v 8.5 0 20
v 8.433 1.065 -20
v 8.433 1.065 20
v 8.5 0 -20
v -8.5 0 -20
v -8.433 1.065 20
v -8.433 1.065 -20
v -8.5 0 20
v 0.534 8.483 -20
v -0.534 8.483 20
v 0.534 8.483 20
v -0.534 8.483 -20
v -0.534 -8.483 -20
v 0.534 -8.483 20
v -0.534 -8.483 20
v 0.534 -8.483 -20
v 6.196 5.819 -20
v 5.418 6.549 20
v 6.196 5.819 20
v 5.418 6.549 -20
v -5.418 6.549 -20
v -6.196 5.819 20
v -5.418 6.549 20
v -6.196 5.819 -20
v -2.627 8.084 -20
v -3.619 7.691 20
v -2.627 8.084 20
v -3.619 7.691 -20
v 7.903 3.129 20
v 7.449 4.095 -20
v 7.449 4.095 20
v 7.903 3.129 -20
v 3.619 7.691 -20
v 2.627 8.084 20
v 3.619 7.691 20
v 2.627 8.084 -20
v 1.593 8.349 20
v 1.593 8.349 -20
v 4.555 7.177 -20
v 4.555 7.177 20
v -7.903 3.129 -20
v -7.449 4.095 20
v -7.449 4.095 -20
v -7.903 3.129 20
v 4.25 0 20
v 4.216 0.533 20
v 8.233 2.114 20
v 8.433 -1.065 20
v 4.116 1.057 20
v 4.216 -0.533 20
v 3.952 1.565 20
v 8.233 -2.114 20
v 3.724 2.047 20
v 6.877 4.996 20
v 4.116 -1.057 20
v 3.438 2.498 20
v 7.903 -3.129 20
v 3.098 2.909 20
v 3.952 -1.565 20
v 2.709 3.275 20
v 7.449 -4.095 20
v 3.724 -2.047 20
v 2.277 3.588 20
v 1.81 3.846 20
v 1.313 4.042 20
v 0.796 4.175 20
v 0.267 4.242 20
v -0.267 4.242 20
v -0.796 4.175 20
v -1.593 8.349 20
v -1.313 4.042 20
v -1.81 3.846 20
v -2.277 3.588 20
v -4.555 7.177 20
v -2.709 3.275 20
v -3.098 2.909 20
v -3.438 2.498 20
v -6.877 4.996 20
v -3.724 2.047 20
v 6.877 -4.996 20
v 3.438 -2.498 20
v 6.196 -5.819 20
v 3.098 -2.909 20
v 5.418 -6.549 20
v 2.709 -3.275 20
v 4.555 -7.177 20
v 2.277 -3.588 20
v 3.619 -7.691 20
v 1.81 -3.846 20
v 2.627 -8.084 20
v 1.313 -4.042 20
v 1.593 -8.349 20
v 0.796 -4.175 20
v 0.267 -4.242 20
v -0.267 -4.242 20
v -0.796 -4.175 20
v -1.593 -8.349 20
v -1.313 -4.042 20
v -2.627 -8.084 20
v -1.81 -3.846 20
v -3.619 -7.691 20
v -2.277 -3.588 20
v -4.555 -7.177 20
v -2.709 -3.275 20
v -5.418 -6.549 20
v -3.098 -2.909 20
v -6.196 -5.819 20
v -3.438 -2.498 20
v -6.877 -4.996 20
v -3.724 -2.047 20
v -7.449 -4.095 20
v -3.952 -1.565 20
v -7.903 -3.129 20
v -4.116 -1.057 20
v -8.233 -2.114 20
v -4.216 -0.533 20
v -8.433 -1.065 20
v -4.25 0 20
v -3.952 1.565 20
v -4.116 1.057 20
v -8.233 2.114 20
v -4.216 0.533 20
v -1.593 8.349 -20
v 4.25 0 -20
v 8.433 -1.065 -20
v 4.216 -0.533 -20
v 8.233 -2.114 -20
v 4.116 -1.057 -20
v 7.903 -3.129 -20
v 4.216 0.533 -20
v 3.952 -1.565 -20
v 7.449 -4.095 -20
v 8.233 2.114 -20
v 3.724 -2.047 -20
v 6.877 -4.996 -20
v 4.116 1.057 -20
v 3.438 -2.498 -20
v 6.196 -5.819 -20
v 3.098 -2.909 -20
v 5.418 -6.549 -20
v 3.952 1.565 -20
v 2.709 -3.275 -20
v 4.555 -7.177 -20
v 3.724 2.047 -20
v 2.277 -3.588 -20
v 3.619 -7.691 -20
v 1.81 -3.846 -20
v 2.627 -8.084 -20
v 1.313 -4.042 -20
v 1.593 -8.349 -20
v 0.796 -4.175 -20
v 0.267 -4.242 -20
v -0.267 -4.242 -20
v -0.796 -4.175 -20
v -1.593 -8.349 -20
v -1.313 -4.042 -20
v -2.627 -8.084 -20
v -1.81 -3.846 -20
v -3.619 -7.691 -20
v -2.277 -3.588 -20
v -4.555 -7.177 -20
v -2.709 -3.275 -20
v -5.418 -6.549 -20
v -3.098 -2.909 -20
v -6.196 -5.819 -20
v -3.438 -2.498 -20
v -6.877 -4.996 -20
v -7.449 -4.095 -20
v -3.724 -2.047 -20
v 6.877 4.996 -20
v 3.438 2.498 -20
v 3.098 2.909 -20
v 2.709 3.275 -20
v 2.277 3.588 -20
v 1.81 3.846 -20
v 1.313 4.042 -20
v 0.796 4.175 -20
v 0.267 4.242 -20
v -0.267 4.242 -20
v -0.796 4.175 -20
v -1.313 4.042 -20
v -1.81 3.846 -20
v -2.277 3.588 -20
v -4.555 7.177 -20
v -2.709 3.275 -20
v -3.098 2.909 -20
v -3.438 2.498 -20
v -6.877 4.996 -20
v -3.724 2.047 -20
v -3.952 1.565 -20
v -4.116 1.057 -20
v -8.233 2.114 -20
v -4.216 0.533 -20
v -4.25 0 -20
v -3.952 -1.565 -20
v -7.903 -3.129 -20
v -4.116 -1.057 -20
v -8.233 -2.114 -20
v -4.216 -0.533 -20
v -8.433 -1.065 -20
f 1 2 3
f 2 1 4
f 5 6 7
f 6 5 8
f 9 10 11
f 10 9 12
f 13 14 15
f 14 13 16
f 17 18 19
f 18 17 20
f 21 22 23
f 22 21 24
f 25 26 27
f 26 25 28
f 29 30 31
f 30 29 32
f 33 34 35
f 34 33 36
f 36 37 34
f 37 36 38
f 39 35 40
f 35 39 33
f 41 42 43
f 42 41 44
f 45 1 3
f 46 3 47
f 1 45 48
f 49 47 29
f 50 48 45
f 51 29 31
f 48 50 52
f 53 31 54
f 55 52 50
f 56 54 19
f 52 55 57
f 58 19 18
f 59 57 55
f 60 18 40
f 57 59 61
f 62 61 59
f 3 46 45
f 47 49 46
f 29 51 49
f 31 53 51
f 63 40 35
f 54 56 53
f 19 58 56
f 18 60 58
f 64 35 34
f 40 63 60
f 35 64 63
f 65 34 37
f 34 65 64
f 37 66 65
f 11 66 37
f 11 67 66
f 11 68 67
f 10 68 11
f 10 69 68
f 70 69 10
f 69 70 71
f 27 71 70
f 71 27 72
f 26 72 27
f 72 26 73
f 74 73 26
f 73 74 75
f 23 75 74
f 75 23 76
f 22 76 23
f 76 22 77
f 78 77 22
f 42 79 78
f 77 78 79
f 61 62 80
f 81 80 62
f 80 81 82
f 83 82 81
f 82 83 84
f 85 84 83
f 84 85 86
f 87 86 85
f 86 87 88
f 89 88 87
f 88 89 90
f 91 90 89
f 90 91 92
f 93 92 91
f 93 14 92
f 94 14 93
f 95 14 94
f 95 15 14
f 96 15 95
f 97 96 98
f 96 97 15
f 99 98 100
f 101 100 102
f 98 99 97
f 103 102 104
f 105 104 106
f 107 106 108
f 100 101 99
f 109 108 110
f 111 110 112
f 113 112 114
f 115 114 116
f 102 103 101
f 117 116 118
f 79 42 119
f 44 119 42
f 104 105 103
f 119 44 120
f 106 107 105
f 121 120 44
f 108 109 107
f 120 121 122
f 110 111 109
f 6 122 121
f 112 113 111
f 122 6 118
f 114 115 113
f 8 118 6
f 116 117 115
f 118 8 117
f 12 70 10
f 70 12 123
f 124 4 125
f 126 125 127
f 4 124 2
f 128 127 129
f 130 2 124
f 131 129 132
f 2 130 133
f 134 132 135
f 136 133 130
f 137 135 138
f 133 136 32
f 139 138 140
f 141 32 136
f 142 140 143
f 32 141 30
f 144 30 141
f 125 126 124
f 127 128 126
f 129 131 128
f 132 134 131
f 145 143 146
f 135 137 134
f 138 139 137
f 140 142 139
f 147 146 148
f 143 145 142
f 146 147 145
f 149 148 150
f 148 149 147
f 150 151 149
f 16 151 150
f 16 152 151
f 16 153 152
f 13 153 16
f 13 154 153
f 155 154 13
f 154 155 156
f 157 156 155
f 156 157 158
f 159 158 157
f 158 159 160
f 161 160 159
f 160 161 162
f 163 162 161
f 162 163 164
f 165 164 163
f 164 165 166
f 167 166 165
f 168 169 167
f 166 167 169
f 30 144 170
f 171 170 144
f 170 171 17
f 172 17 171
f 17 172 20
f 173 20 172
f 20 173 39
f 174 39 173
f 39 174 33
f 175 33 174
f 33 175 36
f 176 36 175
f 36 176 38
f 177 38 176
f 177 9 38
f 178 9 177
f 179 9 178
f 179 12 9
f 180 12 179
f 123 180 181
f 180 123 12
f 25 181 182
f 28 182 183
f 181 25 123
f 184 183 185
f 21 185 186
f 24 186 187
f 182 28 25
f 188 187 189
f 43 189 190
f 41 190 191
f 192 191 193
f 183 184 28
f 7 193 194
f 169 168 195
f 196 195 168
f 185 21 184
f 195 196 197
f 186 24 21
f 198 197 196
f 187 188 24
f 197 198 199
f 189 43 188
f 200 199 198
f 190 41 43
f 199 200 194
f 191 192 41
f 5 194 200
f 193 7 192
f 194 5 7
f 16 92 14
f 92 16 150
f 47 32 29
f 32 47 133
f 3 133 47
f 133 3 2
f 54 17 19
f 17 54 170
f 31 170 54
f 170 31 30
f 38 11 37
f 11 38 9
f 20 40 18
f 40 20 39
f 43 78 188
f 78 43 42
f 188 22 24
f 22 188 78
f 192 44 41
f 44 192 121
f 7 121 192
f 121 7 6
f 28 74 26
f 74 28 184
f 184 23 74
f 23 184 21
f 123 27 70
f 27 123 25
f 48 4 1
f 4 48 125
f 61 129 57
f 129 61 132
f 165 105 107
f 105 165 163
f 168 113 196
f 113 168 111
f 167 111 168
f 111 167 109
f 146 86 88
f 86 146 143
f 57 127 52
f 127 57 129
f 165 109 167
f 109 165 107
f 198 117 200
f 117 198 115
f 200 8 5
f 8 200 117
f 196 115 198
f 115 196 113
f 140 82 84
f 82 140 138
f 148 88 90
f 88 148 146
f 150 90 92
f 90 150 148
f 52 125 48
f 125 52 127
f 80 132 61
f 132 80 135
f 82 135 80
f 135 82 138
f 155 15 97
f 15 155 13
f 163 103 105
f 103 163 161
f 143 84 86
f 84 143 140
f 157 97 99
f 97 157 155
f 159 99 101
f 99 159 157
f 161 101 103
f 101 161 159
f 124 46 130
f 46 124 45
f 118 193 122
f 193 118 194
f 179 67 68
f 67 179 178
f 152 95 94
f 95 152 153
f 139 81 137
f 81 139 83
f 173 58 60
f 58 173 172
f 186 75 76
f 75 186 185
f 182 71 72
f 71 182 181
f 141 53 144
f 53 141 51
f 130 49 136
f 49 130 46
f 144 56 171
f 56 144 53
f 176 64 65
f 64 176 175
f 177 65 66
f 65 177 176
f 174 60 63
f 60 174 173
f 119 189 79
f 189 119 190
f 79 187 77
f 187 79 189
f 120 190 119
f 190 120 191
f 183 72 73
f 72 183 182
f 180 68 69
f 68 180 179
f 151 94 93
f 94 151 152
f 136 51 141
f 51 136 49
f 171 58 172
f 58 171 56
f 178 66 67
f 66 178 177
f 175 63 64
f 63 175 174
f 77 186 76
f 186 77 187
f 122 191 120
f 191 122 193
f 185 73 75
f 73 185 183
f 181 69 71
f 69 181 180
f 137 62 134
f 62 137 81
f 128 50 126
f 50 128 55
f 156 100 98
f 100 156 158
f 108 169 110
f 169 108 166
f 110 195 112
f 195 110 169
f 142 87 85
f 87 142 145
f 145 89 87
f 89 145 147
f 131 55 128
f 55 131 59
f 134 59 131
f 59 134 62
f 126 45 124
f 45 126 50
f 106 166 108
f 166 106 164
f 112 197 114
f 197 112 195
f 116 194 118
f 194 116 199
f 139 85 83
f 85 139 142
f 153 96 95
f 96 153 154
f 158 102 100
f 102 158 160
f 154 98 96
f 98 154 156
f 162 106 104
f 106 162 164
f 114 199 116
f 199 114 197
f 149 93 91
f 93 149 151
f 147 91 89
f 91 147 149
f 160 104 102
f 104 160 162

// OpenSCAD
$fn = 50;


difference() {
	union() {
		translate(v = [0, 0, -20.0000000000]) {
			cylinder(h = 40, r = 8.5000000000);
		}
	}
	union() {
		translate(v = [0, 0, -100.0000000000]) {
			cylinder(h = 200, r = 4.2500000000);
		}
	}
}
